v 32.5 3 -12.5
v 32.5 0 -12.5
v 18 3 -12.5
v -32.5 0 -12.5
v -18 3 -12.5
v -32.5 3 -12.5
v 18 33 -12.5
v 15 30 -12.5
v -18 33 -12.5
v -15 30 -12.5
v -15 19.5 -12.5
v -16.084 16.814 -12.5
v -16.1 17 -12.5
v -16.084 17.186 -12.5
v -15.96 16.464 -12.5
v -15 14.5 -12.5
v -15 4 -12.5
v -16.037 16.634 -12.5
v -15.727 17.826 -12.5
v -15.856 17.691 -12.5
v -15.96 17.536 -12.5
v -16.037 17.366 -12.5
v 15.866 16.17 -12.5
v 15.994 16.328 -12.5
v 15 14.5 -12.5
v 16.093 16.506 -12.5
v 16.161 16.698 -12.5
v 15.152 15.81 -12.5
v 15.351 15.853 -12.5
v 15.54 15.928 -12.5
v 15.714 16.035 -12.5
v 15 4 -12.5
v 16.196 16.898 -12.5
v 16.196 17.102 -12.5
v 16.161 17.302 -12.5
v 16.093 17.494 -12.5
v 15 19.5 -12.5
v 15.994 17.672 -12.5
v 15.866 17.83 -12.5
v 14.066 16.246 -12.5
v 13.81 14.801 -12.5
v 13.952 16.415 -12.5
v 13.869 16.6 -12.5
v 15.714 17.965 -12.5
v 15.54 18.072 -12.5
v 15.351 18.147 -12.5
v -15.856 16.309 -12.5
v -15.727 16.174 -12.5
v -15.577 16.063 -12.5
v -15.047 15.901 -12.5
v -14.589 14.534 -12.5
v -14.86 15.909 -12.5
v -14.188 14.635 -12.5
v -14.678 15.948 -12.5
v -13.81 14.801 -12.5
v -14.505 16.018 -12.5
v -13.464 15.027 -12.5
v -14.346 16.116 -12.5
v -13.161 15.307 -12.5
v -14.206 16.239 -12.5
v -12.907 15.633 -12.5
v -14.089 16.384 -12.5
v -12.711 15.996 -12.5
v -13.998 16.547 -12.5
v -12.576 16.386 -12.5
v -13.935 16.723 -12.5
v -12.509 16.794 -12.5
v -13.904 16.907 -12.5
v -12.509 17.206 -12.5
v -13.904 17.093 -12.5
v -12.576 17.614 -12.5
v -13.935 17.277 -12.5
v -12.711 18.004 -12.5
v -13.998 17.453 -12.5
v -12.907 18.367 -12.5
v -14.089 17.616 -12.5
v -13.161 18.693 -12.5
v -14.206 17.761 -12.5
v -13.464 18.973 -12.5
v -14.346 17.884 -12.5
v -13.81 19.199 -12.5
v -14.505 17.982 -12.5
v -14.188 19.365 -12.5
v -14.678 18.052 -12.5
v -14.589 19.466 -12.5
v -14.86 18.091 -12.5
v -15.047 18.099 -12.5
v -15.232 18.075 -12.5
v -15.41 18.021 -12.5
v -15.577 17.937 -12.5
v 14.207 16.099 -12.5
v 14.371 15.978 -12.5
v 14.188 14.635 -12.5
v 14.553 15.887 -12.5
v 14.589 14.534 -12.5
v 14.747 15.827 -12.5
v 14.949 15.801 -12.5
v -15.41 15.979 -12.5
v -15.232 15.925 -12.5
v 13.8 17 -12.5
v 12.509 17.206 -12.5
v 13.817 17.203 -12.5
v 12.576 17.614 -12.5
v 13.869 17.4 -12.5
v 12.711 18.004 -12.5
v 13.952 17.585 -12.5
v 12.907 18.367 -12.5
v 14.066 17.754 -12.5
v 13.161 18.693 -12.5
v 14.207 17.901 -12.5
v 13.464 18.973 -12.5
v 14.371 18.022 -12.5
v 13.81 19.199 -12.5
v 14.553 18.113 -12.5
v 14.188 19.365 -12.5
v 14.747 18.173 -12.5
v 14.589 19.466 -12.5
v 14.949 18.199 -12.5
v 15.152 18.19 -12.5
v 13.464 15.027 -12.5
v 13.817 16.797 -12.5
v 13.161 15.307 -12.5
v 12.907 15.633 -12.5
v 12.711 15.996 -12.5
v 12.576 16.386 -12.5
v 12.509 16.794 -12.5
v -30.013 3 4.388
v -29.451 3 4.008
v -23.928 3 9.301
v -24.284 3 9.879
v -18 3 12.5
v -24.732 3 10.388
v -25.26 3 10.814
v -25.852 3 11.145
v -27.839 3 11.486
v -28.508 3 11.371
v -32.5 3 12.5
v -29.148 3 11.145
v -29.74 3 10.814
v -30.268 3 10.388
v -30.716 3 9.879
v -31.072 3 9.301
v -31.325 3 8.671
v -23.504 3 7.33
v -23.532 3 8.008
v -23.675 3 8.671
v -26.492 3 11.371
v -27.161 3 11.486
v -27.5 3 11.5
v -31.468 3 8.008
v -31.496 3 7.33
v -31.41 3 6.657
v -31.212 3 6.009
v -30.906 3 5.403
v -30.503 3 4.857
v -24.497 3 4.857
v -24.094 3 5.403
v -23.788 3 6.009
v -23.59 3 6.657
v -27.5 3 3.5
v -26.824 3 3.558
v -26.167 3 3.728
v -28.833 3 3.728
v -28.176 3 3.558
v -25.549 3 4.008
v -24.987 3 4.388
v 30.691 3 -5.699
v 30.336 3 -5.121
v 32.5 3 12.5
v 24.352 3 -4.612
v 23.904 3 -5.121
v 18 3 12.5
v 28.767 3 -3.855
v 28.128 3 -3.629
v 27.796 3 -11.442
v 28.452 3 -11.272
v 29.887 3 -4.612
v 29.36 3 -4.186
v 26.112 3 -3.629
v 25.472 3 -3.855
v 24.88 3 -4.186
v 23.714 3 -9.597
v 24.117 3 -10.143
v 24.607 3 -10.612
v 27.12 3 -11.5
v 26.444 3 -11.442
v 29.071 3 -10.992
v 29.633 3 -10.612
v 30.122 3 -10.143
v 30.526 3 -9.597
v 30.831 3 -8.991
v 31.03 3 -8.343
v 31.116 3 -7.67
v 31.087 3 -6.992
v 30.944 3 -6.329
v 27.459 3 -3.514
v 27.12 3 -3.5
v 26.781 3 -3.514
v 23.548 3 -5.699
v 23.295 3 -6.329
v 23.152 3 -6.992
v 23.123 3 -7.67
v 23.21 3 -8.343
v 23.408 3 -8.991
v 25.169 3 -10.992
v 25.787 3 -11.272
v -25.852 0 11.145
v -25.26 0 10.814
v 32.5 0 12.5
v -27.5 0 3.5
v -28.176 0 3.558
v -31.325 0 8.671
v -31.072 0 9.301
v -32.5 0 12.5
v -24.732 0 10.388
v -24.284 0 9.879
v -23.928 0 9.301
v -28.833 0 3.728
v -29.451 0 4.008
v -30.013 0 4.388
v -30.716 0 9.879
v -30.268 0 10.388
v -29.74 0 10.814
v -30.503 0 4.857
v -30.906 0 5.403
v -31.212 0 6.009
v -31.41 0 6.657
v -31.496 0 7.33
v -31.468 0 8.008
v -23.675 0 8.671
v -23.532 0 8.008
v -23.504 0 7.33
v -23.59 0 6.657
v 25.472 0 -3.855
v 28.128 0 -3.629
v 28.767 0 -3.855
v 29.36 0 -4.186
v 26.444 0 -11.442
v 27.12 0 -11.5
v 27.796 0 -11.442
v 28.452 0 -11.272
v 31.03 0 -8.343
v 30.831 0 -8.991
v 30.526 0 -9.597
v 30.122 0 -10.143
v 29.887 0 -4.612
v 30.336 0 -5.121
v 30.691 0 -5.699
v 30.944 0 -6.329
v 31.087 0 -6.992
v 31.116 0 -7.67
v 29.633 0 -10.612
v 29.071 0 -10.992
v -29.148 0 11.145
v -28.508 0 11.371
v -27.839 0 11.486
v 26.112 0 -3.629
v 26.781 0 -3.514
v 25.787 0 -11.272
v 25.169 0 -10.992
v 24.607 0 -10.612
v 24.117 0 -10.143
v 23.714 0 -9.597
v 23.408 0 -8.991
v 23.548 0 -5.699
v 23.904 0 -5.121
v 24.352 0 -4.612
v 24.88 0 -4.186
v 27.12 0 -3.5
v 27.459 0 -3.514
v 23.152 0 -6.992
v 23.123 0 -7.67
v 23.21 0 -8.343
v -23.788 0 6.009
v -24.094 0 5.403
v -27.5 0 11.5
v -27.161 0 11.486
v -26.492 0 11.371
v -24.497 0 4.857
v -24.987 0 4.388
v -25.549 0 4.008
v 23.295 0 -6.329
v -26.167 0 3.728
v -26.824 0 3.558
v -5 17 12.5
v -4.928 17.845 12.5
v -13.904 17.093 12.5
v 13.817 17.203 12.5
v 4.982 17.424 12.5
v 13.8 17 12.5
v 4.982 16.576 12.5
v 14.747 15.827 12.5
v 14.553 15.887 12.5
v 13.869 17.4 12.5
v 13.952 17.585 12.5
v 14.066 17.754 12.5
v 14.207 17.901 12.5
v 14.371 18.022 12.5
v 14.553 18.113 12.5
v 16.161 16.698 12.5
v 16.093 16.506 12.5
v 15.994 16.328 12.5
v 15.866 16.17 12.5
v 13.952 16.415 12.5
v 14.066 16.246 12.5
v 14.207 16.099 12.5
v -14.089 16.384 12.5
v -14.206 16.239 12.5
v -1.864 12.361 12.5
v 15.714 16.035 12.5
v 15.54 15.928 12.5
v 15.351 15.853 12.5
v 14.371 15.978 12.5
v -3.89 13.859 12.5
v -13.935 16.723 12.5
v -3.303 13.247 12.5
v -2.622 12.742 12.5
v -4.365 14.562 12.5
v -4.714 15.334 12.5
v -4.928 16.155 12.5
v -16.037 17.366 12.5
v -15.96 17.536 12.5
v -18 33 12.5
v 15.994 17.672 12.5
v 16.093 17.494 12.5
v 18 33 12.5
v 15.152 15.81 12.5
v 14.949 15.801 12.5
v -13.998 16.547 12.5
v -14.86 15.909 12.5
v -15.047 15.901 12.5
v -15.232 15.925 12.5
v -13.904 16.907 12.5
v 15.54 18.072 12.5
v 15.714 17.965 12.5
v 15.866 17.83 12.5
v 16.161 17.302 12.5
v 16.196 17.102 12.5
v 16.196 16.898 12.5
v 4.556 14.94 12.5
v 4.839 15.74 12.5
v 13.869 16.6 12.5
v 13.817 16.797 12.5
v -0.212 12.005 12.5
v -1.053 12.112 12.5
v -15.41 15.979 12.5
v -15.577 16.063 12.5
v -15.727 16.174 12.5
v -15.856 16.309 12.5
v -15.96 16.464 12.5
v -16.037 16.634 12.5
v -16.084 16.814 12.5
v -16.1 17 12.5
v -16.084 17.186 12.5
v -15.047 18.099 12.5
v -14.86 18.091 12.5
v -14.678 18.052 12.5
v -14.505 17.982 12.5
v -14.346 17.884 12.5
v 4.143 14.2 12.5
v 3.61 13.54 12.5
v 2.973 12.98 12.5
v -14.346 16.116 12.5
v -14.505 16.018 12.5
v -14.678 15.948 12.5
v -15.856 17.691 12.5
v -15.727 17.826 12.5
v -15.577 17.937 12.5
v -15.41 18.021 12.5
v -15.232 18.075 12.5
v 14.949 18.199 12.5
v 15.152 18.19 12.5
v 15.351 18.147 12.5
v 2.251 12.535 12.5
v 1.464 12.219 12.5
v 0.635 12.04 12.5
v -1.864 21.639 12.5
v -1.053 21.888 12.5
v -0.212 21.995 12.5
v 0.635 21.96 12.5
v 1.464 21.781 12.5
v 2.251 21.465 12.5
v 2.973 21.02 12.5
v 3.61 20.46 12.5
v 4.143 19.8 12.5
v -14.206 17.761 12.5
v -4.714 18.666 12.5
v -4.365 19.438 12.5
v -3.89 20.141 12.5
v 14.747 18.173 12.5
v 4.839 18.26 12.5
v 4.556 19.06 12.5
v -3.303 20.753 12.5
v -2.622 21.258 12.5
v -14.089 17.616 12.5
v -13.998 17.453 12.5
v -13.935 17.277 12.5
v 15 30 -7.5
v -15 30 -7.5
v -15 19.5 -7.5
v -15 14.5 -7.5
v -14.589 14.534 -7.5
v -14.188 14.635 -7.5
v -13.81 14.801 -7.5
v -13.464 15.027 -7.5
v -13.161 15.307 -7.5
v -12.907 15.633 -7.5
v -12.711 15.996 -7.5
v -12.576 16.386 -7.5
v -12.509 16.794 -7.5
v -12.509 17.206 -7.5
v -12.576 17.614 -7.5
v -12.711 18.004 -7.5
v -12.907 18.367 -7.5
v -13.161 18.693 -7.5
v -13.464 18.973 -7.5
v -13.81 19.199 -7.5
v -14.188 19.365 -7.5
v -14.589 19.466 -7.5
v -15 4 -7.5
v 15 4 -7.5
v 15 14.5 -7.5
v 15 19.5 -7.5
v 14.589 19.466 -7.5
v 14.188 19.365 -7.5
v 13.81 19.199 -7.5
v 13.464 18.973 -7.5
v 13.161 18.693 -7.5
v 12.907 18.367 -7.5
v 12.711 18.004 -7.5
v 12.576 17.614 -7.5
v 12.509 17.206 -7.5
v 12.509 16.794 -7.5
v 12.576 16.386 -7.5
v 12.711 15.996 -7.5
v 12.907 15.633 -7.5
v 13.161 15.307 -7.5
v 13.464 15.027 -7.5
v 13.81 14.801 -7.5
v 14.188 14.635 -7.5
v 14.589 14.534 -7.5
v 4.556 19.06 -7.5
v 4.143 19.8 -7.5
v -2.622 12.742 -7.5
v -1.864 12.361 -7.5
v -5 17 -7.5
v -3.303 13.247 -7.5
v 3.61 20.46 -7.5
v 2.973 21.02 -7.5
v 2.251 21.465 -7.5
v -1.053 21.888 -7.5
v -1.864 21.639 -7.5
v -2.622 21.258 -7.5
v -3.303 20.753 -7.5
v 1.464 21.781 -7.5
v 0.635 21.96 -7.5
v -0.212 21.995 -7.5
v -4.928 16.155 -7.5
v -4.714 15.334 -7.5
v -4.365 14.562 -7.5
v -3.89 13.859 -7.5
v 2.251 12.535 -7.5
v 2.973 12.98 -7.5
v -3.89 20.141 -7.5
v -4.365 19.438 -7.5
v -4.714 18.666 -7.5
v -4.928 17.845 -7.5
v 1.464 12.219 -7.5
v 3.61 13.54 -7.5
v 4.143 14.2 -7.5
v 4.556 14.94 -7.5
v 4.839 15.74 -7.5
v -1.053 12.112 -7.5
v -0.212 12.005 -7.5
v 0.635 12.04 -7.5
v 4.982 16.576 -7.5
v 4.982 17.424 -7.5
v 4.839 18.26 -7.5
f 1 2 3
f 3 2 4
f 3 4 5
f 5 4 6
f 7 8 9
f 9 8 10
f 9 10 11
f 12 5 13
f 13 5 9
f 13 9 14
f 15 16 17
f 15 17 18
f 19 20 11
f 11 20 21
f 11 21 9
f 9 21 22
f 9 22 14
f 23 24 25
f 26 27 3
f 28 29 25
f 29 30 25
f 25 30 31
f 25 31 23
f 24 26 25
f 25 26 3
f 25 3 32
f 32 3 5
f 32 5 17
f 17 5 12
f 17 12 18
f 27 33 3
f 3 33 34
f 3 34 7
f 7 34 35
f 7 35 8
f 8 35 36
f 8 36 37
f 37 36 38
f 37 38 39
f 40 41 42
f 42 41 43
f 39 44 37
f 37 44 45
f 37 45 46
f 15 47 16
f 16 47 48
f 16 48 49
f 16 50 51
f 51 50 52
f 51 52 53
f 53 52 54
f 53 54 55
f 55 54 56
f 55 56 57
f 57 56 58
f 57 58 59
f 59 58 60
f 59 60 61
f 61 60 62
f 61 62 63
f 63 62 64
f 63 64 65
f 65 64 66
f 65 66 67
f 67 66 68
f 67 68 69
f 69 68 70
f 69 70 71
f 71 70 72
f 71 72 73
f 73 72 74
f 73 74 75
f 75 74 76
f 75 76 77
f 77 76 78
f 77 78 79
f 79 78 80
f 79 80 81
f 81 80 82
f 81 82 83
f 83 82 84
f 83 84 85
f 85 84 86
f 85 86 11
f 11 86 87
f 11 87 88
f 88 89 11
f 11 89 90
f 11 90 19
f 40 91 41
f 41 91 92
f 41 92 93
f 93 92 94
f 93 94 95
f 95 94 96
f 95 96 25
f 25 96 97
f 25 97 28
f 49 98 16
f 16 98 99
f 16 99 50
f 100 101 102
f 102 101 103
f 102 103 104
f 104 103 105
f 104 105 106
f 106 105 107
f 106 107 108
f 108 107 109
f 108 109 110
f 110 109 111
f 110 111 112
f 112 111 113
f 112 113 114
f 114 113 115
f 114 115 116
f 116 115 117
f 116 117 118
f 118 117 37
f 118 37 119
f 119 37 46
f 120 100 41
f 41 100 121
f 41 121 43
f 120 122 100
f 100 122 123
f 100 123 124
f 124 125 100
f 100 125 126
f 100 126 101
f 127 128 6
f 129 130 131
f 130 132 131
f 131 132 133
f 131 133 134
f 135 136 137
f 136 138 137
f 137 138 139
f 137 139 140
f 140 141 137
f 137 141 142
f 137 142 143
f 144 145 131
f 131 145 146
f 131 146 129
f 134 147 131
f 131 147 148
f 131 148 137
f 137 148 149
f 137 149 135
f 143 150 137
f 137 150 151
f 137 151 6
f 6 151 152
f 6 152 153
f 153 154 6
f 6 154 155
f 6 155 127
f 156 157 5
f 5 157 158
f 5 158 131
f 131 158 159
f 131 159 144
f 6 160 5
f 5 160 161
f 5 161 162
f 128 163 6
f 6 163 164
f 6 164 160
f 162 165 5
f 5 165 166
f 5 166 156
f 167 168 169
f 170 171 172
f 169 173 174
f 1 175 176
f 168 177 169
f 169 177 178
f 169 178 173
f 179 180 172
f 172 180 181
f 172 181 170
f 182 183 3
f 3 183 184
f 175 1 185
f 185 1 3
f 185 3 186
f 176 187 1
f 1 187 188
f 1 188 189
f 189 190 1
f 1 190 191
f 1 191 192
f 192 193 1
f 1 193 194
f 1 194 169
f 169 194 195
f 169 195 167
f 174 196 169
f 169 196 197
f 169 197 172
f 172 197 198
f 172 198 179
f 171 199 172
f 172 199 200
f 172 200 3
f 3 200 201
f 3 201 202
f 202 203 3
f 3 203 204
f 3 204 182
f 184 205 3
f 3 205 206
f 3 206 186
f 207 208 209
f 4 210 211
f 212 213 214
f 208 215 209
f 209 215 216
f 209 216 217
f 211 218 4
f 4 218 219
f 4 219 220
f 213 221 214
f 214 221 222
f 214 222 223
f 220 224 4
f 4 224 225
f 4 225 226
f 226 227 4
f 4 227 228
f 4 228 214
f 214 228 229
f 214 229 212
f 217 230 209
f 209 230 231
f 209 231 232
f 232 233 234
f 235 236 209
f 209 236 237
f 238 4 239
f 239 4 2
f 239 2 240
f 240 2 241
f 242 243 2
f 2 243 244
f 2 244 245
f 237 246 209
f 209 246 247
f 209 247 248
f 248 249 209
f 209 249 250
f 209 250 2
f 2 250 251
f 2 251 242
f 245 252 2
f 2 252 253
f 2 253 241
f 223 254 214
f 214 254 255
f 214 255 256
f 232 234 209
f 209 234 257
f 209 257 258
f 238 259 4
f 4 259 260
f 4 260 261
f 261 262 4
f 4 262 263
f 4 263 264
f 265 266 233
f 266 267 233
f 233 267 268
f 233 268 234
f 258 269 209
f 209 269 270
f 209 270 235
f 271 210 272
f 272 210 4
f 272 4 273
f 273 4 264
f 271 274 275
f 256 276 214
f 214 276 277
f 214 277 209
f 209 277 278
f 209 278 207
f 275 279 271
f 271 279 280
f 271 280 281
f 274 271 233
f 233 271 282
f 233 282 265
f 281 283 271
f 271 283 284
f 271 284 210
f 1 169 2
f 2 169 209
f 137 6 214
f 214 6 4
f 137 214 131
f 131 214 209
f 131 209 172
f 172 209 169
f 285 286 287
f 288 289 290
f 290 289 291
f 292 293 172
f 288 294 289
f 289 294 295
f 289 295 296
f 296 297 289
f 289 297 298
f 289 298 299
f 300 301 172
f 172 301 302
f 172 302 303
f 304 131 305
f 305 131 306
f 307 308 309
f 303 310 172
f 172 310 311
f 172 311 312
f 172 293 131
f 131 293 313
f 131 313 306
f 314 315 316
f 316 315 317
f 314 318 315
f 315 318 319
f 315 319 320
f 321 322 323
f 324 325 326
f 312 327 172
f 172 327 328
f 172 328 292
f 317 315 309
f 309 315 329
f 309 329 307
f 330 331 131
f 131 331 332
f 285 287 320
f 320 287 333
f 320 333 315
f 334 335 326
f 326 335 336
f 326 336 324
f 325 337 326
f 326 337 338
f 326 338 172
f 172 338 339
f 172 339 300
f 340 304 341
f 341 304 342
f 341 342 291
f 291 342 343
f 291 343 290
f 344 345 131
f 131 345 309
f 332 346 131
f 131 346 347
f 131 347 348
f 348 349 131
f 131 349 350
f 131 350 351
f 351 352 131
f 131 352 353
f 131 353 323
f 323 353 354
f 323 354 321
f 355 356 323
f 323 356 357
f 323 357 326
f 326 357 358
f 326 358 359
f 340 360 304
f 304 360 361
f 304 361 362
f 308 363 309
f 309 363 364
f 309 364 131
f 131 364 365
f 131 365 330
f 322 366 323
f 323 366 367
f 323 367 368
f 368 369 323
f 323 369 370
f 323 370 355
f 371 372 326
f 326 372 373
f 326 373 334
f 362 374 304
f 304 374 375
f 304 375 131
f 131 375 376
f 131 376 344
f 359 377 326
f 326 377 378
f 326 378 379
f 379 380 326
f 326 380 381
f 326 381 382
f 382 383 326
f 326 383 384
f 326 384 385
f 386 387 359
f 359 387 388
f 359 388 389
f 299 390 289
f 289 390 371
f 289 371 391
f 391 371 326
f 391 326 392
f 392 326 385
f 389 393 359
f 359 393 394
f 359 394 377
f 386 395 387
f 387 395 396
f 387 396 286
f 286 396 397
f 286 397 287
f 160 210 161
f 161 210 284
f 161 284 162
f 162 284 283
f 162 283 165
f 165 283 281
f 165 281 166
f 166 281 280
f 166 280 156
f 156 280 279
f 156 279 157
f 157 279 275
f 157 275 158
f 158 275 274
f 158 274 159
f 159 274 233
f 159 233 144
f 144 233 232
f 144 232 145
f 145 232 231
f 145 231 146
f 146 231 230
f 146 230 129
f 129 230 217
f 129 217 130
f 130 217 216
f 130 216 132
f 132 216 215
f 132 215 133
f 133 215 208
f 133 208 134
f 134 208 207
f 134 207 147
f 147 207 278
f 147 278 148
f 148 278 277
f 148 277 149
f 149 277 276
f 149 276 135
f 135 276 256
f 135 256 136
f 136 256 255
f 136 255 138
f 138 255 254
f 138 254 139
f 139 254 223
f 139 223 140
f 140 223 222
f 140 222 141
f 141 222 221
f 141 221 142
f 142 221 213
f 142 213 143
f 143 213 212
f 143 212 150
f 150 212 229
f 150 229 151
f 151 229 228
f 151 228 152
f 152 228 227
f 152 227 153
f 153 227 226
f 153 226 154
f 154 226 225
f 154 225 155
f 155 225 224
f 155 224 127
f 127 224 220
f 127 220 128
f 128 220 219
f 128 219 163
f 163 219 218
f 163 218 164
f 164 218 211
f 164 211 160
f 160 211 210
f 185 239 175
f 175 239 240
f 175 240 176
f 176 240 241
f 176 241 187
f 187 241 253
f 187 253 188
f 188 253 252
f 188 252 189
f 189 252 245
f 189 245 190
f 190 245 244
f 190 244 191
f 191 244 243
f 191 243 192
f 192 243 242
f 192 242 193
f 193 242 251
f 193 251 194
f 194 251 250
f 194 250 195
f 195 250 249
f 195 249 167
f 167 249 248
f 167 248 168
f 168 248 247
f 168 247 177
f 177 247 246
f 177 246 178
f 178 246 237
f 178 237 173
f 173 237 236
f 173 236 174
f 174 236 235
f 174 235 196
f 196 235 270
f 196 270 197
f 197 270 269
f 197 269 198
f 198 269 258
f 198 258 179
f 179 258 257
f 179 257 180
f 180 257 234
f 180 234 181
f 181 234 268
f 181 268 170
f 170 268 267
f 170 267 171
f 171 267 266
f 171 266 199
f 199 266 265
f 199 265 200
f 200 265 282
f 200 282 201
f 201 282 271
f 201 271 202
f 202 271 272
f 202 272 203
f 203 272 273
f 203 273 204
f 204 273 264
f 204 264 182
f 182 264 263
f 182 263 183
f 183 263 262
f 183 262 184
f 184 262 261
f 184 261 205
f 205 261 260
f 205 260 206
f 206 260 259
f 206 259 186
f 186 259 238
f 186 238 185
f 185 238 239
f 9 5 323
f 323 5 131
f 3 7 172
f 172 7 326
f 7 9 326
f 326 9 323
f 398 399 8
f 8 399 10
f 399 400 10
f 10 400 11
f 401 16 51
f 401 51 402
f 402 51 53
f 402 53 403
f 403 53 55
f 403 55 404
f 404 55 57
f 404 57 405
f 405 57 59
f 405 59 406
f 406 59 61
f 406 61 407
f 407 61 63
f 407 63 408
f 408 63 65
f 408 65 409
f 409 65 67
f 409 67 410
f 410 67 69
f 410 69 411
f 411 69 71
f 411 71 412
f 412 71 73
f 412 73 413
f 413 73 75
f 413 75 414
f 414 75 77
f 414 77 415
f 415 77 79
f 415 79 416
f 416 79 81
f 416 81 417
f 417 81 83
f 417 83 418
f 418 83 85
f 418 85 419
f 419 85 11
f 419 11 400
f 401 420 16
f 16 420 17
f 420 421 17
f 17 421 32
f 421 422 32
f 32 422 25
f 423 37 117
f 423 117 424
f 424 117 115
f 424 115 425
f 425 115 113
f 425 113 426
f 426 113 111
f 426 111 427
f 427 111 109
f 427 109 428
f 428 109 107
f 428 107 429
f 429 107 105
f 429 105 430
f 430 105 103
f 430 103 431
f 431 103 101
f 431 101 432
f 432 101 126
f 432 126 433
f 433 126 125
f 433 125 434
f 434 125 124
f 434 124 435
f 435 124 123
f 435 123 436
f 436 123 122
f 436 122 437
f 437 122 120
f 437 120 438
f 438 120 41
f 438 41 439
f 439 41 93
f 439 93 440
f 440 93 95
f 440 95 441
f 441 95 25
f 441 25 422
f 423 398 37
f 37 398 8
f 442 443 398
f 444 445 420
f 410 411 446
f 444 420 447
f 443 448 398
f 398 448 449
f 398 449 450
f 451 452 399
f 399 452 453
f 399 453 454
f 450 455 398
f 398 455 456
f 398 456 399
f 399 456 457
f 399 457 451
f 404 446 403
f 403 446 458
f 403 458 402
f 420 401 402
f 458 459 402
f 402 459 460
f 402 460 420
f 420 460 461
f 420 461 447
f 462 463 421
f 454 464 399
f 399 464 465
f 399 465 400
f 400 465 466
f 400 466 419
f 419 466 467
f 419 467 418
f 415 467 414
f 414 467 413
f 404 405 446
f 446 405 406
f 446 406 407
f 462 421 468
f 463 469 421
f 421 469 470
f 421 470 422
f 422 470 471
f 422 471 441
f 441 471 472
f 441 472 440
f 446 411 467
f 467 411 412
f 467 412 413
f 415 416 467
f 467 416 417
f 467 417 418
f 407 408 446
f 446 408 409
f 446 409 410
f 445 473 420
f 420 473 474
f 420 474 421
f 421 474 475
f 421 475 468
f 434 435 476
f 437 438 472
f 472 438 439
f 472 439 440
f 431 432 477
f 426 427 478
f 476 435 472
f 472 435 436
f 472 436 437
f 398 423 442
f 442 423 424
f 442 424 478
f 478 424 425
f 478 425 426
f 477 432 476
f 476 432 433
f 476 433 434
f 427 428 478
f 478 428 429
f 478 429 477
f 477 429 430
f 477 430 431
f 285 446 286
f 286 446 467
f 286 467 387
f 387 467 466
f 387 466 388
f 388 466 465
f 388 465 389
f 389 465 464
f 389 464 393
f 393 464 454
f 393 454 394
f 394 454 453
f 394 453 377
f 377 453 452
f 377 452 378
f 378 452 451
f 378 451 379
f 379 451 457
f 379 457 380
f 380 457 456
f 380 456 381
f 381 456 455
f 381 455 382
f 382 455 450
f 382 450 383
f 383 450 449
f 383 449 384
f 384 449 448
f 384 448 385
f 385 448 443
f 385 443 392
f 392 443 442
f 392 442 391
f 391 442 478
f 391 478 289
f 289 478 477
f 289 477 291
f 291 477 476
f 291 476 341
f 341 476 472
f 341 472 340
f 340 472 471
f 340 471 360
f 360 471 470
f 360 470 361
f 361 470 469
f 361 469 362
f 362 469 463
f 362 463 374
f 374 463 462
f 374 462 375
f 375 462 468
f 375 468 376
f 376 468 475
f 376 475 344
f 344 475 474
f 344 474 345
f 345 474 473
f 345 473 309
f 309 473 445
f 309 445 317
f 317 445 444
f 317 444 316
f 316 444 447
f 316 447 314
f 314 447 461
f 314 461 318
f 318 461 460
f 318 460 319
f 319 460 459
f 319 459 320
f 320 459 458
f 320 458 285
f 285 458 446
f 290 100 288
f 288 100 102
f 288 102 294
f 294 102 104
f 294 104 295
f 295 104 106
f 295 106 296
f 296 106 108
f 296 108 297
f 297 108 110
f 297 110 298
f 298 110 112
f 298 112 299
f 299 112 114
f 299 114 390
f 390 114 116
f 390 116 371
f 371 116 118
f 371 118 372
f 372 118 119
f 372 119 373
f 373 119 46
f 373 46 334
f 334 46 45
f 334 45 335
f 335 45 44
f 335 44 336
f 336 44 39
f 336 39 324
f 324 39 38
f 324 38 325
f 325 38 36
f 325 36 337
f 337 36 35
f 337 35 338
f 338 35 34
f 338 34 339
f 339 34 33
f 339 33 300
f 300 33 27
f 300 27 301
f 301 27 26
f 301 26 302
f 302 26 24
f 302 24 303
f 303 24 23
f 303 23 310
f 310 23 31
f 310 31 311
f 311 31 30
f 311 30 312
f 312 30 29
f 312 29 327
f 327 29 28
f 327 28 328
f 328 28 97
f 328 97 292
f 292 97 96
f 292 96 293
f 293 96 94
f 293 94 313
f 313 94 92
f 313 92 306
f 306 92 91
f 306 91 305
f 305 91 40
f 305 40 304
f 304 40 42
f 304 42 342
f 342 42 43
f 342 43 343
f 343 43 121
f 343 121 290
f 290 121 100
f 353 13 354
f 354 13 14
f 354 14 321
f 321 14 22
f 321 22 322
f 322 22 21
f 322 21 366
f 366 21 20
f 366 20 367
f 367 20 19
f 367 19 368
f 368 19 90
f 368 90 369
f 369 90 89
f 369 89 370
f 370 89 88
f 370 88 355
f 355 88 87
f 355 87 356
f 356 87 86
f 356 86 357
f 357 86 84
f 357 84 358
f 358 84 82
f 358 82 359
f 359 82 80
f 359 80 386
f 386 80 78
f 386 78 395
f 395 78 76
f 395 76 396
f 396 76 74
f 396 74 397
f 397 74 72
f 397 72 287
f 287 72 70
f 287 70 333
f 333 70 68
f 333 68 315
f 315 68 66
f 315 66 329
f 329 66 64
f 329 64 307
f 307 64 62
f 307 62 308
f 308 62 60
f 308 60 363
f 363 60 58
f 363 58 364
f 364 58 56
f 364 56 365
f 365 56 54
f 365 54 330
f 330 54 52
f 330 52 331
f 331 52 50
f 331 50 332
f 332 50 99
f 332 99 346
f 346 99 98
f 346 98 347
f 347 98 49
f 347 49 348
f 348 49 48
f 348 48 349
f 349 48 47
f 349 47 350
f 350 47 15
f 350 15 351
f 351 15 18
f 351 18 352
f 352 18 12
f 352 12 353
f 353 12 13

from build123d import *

# Parameters (mm, degrees)
SKETCH1_W           = 65
SKETCH1_H           = 25
SKETCH1_R           = 4
BOSS_EXTRUDE1_DEPTH = 3
SKETCH2_W           = 36
SKETCH2_H           = 30
BOSS_EXTRUDE2_DEPTH = 25
CUT_EXTRUDE1_DEPTH  = 5
SKETCH4_R           = 5
CUT_EXTRUDE2_DEPTH  = 21
SKETCH6_R           = 1.2
SKETCH6_R_2         = 1.1
CUT_EXTRUDE4_DEPTH  = 26


with BuildPart() as part:
    # Sketch1 → Boss-Extrude1 (new body)
    with BuildSketch(Plane(origin=(0, 0, 0), x_dir=(1, 0, 0), z_dir=(0, 1, 0))):
        Rectangle(SKETCH1_W, SKETCH1_H)
        with Locations((-27.5, -7.5)):
            Circle(SKETCH1_R, mode=Mode.SUBTRACT)
        with Locations((27.119741523, 7.5)):
            Circle(SKETCH1_R, mode=Mode.SUBTRACT)
    extrude(amount=BOSS_EXTRUDE1_DEPTH)

    # Sketch2 → Boss-Extrude2 (add)
    with BuildSketch(Plane(origin=(0, 0, -12.5), x_dir=(-1, 0, 0), z_dir=(0, 0, -1))):
        with Locations((0, 18)):
            Rectangle(SKETCH2_W, SKETCH2_H)
    extrude(amount=-BOSS_EXTRUDE2_DEPTH)

    # Sketch3 → Cut-Extrude1 (cut)
    with BuildSketch(Plane(origin=(0, 0, -12.5), x_dir=(-1, 0, 0), z_dir=(0, 0, -1))):
        with BuildLine():
            Line((-15, 30), (15, 30))
            Line((15, 30), (15, 19.5))
            ThreePointArc((15, 19.5), (12.5, 17), (15, 14.5))
            Line((15, 14.5), (15, 4))
            Line((15, 4), (-15, 4))
            Line((-15, 4), (-15, 14.5))
            ThreePointArc((-15, 14.5), (-12.5, 17), (-15, 19.5))
            Line((-15, 19.5), (-15, 30))
        make_face()
    extrude(amount=-CUT_EXTRUDE1_DEPTH, mode=Mode.SUBTRACT)

    # Sketch4 → Cut-Extrude2 (cut, through all)
    with BuildSketch(Plane(origin=(0, 0, -7.5), x_dir=(-1, 0, 0), z_dir=(0, 0, -1))):
        with Locations((0, 17)):
            Circle(SKETCH4_R)
    extrude(amount=-CUT_EXTRUDE2_DEPTH, mode=Mode.SUBTRACT)

    # Sketch6 → Cut-Extrude4 (cut, through all)
    with BuildSketch(Plane(origin=(0, 0, -12.5), x_dir=(-1, 0, 0), z_dir=(0, 0, -1))):
        with Locations((-15, 17)):
            Circle(SKETCH6_R)
        with Locations((15, 17)):
            Circle(SKETCH6_R_2)
    extrude(amount=-CUT_EXTRUDE4_DEPTH, mode=Mode.SUBTRACT)


solid = part.part
